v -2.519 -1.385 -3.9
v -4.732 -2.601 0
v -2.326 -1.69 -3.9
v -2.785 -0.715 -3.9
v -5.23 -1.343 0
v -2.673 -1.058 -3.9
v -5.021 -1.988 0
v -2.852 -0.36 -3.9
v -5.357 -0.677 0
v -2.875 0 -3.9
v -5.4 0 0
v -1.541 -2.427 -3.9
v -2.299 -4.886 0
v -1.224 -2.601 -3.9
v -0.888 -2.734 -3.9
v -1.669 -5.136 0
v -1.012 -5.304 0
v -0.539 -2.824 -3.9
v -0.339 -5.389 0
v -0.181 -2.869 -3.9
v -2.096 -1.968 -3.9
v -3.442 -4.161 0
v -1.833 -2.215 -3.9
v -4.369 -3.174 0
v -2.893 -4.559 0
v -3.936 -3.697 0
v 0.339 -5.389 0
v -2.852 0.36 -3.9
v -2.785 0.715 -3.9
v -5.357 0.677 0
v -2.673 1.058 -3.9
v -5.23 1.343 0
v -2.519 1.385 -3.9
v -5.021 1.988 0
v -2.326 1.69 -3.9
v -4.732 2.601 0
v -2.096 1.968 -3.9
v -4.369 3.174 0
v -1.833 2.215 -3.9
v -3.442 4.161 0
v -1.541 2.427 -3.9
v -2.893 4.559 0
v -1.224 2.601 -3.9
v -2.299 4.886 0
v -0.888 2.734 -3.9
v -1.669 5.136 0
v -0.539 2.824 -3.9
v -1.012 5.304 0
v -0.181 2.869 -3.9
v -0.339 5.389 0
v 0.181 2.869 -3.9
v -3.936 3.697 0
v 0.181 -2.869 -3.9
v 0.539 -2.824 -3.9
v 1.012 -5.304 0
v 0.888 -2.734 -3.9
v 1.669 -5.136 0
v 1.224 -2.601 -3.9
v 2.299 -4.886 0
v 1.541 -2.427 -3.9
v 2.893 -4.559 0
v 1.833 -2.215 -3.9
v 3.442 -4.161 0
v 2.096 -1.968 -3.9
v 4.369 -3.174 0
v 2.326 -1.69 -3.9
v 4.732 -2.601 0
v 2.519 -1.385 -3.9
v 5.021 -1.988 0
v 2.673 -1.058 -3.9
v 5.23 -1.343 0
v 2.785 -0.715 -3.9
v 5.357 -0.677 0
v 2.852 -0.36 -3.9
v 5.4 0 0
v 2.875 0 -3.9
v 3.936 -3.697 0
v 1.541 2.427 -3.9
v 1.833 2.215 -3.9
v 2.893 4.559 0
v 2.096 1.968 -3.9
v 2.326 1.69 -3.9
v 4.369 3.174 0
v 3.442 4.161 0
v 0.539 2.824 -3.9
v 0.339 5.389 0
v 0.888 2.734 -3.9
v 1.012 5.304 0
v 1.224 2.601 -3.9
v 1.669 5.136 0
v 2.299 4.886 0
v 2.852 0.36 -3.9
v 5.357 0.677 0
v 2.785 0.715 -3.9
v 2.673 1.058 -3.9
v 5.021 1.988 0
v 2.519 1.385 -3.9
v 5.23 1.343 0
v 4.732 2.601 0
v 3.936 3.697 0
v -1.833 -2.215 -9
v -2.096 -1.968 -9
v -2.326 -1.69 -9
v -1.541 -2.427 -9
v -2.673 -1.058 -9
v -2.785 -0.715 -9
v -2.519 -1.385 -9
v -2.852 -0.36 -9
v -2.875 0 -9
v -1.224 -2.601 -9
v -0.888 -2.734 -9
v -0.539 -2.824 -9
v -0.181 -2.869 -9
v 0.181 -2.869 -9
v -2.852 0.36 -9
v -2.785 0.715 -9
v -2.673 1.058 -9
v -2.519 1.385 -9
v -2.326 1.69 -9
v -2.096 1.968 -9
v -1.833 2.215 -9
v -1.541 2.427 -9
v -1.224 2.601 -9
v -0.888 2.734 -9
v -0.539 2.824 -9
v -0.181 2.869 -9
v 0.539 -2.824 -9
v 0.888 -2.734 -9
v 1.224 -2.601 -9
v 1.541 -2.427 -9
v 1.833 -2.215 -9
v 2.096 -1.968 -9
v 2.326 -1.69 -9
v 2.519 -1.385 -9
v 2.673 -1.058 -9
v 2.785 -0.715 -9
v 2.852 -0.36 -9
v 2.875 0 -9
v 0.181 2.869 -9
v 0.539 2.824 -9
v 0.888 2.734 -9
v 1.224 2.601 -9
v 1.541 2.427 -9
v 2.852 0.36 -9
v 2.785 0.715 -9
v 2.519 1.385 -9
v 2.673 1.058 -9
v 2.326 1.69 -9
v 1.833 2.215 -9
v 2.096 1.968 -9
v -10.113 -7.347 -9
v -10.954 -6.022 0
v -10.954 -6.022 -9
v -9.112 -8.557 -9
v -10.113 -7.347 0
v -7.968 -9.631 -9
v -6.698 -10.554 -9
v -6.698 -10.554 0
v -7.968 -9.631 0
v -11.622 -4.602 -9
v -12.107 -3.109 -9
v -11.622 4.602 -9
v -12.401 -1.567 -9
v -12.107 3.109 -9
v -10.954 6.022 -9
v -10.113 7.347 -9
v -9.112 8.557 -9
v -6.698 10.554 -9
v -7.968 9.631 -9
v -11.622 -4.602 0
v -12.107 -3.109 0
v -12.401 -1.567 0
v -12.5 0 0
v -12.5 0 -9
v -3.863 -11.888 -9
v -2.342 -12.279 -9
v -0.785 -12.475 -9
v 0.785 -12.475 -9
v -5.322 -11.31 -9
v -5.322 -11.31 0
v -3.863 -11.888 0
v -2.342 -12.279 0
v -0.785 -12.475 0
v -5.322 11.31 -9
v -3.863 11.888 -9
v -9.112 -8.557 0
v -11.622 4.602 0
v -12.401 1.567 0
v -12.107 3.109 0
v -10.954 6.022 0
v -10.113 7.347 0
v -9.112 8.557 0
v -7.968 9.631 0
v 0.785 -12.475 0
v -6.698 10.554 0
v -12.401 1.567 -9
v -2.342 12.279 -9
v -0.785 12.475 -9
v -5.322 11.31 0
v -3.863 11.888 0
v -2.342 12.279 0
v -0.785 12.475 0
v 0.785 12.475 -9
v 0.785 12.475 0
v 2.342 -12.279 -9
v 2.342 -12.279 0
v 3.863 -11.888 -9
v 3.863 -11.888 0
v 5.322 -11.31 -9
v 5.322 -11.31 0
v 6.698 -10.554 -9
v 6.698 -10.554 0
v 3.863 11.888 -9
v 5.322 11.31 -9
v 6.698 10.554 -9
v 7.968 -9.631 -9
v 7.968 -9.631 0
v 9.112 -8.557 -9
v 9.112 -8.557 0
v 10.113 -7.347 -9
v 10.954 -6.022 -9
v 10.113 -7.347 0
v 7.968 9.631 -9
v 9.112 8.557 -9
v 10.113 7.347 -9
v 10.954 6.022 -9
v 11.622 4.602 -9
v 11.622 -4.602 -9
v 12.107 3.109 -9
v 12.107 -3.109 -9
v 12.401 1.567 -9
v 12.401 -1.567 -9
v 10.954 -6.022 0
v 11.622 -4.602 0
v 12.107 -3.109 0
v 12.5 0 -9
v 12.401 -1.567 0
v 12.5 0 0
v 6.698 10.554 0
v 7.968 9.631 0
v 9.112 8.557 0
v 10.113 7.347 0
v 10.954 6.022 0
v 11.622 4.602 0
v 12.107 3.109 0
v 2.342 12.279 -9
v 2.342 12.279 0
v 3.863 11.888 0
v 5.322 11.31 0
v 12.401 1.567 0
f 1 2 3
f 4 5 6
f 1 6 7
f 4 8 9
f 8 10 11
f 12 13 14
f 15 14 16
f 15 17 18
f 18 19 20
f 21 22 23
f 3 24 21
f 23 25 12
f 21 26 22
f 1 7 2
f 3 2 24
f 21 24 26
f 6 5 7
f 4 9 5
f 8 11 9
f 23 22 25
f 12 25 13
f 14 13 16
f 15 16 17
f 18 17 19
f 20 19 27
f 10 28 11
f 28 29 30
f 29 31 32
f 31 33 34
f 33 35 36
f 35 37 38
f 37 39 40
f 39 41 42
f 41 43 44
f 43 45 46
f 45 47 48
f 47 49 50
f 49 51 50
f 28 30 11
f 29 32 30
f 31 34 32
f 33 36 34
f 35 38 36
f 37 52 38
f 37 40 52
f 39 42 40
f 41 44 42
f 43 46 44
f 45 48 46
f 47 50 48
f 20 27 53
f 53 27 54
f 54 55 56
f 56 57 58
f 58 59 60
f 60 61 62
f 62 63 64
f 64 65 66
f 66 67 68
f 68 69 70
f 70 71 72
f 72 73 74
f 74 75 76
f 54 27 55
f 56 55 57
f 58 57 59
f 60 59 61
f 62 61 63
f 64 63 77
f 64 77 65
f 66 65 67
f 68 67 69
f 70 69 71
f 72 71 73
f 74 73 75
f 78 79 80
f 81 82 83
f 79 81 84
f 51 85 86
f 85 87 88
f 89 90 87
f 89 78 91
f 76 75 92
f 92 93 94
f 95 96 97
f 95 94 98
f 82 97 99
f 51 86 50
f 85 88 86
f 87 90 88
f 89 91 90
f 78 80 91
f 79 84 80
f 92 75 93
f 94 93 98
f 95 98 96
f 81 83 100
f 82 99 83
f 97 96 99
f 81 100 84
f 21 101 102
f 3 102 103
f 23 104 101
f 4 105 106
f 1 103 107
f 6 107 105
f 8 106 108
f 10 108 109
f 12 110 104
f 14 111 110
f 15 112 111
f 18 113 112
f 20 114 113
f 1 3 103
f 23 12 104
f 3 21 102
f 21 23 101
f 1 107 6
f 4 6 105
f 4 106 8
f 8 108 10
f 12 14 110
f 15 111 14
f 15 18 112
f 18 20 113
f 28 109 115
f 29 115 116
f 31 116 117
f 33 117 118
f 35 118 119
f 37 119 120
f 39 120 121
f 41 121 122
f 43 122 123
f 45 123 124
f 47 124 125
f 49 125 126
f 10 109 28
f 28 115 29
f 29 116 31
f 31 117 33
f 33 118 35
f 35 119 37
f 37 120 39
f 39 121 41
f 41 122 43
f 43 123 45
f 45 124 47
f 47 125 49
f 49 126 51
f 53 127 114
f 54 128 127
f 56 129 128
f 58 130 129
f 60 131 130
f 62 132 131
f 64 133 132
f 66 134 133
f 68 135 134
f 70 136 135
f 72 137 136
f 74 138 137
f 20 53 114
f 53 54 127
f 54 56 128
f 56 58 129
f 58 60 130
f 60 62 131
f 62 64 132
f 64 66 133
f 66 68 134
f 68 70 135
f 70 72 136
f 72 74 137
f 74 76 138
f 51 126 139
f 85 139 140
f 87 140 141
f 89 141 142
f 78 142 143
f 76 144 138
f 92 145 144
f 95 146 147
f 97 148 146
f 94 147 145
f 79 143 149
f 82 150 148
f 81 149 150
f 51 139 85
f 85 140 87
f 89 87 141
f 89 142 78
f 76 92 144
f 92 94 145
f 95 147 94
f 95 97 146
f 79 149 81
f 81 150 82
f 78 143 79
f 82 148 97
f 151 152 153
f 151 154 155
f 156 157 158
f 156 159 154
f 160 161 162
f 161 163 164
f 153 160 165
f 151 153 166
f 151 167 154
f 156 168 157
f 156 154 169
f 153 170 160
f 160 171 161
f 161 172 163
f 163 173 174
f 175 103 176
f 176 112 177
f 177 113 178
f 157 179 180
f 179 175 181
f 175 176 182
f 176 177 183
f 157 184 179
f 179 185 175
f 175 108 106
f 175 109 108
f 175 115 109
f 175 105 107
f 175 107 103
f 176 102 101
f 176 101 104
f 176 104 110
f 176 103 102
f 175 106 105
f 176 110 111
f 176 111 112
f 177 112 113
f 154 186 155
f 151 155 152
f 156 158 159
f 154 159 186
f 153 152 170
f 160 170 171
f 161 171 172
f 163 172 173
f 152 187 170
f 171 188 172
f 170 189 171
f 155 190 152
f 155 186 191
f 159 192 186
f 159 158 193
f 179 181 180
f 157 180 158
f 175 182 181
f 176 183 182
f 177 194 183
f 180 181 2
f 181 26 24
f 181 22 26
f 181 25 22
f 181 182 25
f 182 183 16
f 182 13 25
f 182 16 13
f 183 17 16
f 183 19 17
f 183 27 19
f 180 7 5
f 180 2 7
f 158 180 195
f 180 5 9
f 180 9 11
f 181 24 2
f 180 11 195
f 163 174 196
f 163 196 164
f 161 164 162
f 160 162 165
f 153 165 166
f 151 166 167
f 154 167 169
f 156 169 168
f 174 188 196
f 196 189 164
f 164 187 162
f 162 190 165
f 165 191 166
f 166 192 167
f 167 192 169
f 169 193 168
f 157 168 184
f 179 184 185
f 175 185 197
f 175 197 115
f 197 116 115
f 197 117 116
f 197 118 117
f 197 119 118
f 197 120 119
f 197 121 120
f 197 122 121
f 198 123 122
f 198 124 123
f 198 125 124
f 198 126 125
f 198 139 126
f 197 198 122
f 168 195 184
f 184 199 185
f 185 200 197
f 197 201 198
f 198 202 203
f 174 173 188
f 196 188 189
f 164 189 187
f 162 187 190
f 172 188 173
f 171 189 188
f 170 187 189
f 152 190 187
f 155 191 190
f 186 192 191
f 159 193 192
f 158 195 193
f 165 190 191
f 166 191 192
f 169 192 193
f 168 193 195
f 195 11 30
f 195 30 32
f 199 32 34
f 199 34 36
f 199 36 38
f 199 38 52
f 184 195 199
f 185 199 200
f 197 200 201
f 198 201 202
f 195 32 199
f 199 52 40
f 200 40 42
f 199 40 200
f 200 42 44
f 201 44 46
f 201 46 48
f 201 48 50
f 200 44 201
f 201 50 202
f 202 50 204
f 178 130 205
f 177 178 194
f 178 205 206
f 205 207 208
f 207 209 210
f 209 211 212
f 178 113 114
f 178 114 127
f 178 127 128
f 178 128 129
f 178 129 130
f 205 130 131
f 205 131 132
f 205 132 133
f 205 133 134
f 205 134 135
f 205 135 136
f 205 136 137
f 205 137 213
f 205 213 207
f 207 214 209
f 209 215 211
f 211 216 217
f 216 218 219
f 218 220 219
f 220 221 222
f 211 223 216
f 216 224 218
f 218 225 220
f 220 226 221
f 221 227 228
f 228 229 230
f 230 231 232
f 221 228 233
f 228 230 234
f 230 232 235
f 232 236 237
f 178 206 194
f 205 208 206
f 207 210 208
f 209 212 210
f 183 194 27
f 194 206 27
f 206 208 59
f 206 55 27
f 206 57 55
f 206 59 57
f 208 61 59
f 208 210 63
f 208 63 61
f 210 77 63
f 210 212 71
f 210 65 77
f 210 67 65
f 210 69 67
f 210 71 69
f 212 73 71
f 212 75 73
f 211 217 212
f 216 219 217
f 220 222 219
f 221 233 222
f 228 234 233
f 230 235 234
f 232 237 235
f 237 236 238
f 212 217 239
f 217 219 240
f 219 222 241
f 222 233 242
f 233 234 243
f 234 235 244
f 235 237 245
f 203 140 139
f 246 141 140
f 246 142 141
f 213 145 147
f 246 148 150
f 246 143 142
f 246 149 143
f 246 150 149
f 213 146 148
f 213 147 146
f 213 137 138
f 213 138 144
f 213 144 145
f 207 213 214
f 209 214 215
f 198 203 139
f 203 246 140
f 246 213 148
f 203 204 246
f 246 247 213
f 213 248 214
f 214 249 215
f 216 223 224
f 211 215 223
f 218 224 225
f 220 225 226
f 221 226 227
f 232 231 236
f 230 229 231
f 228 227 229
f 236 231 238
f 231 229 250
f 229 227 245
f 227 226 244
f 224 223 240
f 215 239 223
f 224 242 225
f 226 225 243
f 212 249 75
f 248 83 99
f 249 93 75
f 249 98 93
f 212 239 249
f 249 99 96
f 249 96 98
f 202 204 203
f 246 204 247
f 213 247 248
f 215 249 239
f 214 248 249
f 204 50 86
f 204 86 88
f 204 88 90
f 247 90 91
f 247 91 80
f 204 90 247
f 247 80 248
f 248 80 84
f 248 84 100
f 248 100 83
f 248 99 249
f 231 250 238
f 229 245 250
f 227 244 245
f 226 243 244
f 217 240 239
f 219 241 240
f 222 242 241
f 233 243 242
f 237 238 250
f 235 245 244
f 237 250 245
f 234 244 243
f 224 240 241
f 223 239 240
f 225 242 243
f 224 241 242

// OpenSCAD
$fn = 50;

difference() {
	union() {
		translate(v = [0, 0, -9.0]) {
			cylinder(h = 9, r = 12.5);
		}
		#translate(v = [0, 0, -12.0]) {
			cylinder(h = 12, r = 2.875);
		}
	}
	union() {
		translate(v = [0, 0, 0]) {
			rotate(a = [0, 0, 0]) {
				difference() {
					union() {
						translate(v = [0, 0, -12.0]) {
							cylinder(h = 12, r = 2.6);
						}
						translate(v = [0, 0, -3.9]) {
							cylinder(h = 3.9, r1 = 2.875, r2 = 5.4);
						}
						translate(v = [0, 0, -12.0]) {
							cylinder(h = 12, r = 2.875);
						}
						translate(v = [0, 0, -12.0]) {
							cylinder(h = 12, r = 2.6);
						}
					}
					union();
				}
			}
		}
	}
}
